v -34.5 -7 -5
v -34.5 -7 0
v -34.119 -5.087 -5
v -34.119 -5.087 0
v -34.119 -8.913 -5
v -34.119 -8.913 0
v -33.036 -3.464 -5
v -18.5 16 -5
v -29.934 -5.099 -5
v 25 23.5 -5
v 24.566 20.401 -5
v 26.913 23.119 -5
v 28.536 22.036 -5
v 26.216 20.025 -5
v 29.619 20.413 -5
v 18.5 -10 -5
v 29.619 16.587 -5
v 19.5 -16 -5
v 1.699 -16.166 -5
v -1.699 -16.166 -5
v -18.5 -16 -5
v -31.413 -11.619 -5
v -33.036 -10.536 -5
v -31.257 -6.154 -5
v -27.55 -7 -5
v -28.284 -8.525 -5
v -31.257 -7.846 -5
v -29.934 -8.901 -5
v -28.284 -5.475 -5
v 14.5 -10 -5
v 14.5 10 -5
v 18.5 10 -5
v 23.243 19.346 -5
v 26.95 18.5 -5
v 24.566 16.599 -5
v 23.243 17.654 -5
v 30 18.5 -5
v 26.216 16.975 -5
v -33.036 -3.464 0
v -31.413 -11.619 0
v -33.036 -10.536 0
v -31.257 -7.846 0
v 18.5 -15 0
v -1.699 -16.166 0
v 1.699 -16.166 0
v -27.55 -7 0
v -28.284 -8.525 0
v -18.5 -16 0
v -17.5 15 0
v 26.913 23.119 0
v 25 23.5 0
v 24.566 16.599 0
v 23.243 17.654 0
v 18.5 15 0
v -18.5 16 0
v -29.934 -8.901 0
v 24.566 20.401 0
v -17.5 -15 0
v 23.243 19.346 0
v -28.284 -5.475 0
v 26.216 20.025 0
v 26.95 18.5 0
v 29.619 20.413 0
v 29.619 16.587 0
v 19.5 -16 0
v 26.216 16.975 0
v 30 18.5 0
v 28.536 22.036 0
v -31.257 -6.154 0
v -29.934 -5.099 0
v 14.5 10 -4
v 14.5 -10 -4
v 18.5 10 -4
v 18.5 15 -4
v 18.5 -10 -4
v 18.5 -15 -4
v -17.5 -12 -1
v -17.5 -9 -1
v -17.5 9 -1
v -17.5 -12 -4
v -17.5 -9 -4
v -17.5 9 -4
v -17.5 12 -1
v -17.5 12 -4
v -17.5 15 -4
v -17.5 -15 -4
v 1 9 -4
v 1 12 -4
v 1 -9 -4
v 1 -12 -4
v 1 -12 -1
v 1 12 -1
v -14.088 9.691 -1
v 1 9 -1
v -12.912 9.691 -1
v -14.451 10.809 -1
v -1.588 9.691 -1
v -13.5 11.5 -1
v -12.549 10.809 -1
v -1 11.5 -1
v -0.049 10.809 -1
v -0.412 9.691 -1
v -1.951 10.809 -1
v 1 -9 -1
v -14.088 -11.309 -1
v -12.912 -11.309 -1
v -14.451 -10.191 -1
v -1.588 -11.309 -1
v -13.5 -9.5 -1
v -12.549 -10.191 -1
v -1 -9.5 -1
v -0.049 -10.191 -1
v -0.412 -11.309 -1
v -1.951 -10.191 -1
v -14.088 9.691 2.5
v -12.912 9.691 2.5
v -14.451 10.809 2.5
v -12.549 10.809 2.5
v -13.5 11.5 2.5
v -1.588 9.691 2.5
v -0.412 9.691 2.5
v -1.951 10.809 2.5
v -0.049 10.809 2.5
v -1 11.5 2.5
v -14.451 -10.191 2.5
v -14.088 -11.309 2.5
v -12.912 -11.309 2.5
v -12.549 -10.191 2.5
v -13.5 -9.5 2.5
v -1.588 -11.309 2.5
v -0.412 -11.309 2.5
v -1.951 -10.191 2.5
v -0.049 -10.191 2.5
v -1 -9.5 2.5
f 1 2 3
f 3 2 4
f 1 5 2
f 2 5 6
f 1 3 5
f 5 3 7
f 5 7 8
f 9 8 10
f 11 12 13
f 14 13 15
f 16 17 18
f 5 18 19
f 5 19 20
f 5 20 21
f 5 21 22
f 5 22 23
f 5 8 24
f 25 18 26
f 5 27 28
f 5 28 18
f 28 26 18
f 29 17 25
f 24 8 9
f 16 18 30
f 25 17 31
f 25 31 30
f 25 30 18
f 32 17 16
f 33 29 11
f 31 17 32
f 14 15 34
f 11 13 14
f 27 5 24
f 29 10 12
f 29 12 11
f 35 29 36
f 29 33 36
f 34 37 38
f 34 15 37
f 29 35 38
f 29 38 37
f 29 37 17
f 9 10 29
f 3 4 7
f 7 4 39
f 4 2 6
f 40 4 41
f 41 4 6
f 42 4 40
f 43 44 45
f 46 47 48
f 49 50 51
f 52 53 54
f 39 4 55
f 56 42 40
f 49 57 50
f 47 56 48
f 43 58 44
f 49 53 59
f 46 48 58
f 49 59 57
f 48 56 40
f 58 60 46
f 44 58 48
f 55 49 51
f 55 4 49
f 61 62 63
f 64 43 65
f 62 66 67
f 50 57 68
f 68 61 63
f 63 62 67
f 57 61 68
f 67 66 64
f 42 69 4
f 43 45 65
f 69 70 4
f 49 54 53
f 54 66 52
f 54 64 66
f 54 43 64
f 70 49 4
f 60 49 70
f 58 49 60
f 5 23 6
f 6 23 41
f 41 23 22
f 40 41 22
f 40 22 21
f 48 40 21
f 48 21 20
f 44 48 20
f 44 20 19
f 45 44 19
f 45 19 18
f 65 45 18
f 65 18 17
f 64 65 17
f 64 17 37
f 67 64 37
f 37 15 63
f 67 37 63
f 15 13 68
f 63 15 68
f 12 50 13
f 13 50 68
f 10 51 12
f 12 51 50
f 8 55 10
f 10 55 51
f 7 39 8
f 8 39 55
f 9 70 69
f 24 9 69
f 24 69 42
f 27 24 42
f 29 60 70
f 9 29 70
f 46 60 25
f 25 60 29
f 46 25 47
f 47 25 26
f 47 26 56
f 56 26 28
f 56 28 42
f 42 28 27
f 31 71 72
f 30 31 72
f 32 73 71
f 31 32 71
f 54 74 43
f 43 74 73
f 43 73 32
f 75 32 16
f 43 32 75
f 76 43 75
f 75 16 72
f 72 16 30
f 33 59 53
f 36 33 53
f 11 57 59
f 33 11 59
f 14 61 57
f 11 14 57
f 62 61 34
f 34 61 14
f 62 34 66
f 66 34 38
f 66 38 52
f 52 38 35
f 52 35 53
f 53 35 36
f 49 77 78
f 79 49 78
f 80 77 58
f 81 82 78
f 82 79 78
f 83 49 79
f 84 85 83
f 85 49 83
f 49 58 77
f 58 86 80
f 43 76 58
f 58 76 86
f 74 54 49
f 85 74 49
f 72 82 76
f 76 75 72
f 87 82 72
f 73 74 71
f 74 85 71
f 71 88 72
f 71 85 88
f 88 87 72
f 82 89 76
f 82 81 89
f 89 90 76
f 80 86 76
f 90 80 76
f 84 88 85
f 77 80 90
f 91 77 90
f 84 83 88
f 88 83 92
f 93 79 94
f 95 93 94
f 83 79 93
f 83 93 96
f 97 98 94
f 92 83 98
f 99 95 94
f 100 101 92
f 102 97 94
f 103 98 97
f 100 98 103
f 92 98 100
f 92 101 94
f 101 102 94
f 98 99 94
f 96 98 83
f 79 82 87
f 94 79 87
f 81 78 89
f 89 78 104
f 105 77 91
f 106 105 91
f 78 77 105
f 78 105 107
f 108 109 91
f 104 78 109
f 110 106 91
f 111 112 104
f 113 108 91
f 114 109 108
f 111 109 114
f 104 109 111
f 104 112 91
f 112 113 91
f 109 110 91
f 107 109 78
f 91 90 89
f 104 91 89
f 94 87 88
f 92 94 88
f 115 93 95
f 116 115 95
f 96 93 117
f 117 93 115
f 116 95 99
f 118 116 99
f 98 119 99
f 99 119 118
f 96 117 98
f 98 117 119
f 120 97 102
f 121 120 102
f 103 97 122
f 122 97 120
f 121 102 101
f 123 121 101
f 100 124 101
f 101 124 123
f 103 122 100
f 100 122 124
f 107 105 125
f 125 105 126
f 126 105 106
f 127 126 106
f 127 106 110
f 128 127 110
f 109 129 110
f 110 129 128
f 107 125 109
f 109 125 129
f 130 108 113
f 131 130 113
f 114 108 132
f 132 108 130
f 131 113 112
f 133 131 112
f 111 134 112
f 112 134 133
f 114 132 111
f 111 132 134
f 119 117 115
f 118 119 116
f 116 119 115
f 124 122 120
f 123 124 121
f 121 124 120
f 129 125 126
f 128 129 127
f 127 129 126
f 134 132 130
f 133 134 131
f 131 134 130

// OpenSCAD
// Camera module telescope interface backplate.

// Make the values explicit since we are not running customizer
Drawtube_OD_inches_explicit = 0.965;
part_explicit="backplate";

include <pipiece.scad>
